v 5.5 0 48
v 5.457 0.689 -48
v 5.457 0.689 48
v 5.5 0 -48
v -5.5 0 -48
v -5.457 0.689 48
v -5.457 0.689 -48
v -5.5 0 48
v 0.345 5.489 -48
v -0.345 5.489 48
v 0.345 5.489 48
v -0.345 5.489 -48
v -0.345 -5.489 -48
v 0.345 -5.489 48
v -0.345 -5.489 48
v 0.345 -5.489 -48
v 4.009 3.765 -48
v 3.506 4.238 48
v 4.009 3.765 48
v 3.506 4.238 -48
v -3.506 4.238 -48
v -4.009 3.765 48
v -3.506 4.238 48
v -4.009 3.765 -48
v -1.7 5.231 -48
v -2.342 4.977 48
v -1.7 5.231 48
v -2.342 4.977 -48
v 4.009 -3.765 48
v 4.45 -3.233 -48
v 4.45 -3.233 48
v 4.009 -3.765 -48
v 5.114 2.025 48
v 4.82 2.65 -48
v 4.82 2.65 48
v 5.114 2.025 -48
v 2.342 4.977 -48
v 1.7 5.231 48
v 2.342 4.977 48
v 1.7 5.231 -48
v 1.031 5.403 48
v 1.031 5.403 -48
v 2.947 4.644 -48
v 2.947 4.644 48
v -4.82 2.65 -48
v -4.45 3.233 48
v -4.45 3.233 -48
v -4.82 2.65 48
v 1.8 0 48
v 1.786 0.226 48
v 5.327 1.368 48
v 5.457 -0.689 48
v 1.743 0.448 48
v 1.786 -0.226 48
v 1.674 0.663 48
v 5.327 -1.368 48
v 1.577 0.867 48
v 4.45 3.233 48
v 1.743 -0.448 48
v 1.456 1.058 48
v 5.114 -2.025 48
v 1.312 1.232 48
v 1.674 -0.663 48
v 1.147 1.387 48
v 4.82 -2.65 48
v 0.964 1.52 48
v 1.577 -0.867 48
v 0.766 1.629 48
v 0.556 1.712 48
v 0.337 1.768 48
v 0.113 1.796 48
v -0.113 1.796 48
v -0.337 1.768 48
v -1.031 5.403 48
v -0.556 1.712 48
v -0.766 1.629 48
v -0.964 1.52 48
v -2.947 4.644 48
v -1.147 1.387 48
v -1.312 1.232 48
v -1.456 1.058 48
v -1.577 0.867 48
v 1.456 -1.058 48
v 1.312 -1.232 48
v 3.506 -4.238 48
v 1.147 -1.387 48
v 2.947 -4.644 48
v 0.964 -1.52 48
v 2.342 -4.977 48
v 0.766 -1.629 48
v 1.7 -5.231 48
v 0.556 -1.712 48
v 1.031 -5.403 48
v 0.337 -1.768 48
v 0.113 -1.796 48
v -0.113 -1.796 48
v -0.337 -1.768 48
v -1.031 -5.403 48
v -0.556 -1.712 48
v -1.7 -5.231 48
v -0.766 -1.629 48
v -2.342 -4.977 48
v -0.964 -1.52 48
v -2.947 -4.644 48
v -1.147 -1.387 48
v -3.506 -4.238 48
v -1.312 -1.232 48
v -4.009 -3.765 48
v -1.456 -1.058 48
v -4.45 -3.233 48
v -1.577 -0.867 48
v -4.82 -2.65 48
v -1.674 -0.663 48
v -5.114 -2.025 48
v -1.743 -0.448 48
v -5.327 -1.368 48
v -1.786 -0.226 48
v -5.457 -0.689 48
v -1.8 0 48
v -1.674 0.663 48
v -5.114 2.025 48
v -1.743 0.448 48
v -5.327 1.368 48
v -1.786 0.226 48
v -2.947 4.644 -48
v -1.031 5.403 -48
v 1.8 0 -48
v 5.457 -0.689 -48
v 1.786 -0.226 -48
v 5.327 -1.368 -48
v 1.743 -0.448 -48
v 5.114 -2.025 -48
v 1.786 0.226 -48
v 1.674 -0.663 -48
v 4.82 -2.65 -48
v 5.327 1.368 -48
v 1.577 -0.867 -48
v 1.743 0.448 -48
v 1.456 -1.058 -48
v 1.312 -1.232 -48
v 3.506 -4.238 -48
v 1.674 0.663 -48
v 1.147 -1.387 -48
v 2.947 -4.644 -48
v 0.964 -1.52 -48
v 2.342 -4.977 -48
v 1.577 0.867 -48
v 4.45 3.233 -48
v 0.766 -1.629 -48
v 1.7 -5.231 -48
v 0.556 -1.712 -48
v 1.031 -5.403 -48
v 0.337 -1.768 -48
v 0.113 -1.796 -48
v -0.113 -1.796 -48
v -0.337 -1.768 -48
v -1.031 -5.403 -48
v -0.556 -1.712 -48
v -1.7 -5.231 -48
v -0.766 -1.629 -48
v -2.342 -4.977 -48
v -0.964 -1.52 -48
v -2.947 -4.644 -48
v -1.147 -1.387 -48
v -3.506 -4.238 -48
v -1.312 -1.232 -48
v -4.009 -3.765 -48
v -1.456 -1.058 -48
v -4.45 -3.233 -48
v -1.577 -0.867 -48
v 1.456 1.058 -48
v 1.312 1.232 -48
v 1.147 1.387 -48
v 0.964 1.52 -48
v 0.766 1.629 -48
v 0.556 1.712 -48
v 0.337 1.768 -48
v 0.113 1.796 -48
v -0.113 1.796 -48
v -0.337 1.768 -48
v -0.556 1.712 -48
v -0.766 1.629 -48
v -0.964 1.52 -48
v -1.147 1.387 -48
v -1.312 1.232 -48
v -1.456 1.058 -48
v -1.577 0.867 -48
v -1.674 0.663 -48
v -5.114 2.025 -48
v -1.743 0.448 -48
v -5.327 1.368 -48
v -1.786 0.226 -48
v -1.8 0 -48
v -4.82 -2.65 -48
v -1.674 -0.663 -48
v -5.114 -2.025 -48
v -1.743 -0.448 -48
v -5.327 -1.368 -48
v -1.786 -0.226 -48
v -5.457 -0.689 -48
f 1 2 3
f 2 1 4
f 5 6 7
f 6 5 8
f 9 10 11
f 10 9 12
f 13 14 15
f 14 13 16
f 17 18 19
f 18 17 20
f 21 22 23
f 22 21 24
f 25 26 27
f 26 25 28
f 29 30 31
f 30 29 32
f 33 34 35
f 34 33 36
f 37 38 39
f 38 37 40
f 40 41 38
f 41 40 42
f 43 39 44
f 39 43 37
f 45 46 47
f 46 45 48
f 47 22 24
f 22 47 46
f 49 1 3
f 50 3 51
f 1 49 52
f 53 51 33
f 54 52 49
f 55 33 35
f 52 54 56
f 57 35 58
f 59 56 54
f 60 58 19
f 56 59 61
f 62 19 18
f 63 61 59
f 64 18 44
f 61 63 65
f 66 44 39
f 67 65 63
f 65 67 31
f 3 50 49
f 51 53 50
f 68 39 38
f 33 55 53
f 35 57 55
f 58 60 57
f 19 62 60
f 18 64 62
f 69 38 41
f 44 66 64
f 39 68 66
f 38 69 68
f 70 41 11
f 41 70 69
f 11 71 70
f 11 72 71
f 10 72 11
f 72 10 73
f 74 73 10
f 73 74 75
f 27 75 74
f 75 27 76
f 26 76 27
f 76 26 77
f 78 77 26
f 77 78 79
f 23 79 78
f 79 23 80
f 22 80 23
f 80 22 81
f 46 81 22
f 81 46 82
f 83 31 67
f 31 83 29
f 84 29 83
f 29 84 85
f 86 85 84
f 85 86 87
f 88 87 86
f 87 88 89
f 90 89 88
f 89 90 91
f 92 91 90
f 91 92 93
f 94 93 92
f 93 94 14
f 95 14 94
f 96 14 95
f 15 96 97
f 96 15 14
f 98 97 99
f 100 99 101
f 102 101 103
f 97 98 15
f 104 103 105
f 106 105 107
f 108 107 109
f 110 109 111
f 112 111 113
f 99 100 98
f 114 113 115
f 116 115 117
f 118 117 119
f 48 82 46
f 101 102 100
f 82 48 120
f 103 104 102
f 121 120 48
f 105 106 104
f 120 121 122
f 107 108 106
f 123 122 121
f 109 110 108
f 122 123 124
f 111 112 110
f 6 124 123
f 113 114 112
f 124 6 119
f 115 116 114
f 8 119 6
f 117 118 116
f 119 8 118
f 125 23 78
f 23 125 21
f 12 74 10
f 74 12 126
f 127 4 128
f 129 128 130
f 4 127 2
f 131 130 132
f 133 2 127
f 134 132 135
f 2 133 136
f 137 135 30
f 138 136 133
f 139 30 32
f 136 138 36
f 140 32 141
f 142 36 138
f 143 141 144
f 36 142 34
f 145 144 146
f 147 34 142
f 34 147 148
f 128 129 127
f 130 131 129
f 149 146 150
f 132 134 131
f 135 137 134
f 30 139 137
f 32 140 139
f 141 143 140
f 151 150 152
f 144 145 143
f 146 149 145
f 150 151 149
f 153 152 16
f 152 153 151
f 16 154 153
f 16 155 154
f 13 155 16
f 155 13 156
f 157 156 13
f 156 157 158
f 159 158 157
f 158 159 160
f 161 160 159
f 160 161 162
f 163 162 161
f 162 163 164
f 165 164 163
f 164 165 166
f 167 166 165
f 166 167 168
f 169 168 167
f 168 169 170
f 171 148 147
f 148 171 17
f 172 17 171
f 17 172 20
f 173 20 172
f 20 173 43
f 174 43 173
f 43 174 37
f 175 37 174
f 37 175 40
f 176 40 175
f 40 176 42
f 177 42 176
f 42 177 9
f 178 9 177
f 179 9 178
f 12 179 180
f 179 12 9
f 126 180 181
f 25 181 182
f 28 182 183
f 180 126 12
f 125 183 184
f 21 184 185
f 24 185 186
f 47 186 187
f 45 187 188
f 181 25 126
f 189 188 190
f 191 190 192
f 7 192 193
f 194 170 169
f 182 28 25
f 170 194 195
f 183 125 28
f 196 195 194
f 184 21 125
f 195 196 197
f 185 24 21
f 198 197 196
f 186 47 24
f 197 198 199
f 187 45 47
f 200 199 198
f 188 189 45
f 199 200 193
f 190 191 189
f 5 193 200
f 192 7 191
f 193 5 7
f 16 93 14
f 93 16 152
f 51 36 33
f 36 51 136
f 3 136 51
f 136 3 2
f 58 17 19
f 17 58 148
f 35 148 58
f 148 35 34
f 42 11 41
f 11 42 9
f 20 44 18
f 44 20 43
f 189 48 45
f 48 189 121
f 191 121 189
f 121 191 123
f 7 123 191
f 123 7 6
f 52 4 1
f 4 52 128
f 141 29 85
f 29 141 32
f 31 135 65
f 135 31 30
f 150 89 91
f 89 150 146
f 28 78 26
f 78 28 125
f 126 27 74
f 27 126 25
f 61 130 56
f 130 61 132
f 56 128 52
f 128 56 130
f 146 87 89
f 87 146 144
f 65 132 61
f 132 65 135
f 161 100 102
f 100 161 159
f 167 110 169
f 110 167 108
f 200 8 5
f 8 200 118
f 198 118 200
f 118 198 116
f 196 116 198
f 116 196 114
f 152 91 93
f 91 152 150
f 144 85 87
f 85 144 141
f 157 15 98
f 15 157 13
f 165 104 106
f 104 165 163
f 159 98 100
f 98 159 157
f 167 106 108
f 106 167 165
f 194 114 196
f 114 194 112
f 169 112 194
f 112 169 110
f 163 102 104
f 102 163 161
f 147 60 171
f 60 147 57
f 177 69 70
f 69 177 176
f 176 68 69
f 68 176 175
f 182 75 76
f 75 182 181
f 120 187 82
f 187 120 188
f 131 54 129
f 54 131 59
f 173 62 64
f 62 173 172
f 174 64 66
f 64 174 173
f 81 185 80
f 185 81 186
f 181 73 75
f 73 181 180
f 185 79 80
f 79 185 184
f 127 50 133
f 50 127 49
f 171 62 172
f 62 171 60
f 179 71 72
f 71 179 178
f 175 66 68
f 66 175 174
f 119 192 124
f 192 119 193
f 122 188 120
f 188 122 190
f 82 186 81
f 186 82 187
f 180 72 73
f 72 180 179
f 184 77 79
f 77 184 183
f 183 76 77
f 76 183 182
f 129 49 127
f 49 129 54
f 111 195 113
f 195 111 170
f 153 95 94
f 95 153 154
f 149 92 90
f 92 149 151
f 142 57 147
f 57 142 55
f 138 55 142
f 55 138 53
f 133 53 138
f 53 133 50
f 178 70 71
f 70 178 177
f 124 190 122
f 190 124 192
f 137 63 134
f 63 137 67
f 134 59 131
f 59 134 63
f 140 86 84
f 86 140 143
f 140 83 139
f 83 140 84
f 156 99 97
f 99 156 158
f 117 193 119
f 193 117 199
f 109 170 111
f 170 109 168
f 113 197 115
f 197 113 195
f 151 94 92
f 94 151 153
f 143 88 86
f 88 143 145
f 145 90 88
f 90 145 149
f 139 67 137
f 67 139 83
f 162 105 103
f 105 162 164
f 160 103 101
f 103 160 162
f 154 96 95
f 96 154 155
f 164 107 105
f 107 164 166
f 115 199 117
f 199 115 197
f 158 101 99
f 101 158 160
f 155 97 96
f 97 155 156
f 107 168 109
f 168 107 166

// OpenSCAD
$fn = 50;


difference() {
	union() {
		translate(v = [0, 0, -48.0000000000]) {
			cylinder(h = 96, r = 5.5000000000);
		}
	}
	union() {
		translate(v = [0, 0, -100.0000000000]) {
			cylinder(h = 200, r = 1.8000000000);
		}
	}
}
